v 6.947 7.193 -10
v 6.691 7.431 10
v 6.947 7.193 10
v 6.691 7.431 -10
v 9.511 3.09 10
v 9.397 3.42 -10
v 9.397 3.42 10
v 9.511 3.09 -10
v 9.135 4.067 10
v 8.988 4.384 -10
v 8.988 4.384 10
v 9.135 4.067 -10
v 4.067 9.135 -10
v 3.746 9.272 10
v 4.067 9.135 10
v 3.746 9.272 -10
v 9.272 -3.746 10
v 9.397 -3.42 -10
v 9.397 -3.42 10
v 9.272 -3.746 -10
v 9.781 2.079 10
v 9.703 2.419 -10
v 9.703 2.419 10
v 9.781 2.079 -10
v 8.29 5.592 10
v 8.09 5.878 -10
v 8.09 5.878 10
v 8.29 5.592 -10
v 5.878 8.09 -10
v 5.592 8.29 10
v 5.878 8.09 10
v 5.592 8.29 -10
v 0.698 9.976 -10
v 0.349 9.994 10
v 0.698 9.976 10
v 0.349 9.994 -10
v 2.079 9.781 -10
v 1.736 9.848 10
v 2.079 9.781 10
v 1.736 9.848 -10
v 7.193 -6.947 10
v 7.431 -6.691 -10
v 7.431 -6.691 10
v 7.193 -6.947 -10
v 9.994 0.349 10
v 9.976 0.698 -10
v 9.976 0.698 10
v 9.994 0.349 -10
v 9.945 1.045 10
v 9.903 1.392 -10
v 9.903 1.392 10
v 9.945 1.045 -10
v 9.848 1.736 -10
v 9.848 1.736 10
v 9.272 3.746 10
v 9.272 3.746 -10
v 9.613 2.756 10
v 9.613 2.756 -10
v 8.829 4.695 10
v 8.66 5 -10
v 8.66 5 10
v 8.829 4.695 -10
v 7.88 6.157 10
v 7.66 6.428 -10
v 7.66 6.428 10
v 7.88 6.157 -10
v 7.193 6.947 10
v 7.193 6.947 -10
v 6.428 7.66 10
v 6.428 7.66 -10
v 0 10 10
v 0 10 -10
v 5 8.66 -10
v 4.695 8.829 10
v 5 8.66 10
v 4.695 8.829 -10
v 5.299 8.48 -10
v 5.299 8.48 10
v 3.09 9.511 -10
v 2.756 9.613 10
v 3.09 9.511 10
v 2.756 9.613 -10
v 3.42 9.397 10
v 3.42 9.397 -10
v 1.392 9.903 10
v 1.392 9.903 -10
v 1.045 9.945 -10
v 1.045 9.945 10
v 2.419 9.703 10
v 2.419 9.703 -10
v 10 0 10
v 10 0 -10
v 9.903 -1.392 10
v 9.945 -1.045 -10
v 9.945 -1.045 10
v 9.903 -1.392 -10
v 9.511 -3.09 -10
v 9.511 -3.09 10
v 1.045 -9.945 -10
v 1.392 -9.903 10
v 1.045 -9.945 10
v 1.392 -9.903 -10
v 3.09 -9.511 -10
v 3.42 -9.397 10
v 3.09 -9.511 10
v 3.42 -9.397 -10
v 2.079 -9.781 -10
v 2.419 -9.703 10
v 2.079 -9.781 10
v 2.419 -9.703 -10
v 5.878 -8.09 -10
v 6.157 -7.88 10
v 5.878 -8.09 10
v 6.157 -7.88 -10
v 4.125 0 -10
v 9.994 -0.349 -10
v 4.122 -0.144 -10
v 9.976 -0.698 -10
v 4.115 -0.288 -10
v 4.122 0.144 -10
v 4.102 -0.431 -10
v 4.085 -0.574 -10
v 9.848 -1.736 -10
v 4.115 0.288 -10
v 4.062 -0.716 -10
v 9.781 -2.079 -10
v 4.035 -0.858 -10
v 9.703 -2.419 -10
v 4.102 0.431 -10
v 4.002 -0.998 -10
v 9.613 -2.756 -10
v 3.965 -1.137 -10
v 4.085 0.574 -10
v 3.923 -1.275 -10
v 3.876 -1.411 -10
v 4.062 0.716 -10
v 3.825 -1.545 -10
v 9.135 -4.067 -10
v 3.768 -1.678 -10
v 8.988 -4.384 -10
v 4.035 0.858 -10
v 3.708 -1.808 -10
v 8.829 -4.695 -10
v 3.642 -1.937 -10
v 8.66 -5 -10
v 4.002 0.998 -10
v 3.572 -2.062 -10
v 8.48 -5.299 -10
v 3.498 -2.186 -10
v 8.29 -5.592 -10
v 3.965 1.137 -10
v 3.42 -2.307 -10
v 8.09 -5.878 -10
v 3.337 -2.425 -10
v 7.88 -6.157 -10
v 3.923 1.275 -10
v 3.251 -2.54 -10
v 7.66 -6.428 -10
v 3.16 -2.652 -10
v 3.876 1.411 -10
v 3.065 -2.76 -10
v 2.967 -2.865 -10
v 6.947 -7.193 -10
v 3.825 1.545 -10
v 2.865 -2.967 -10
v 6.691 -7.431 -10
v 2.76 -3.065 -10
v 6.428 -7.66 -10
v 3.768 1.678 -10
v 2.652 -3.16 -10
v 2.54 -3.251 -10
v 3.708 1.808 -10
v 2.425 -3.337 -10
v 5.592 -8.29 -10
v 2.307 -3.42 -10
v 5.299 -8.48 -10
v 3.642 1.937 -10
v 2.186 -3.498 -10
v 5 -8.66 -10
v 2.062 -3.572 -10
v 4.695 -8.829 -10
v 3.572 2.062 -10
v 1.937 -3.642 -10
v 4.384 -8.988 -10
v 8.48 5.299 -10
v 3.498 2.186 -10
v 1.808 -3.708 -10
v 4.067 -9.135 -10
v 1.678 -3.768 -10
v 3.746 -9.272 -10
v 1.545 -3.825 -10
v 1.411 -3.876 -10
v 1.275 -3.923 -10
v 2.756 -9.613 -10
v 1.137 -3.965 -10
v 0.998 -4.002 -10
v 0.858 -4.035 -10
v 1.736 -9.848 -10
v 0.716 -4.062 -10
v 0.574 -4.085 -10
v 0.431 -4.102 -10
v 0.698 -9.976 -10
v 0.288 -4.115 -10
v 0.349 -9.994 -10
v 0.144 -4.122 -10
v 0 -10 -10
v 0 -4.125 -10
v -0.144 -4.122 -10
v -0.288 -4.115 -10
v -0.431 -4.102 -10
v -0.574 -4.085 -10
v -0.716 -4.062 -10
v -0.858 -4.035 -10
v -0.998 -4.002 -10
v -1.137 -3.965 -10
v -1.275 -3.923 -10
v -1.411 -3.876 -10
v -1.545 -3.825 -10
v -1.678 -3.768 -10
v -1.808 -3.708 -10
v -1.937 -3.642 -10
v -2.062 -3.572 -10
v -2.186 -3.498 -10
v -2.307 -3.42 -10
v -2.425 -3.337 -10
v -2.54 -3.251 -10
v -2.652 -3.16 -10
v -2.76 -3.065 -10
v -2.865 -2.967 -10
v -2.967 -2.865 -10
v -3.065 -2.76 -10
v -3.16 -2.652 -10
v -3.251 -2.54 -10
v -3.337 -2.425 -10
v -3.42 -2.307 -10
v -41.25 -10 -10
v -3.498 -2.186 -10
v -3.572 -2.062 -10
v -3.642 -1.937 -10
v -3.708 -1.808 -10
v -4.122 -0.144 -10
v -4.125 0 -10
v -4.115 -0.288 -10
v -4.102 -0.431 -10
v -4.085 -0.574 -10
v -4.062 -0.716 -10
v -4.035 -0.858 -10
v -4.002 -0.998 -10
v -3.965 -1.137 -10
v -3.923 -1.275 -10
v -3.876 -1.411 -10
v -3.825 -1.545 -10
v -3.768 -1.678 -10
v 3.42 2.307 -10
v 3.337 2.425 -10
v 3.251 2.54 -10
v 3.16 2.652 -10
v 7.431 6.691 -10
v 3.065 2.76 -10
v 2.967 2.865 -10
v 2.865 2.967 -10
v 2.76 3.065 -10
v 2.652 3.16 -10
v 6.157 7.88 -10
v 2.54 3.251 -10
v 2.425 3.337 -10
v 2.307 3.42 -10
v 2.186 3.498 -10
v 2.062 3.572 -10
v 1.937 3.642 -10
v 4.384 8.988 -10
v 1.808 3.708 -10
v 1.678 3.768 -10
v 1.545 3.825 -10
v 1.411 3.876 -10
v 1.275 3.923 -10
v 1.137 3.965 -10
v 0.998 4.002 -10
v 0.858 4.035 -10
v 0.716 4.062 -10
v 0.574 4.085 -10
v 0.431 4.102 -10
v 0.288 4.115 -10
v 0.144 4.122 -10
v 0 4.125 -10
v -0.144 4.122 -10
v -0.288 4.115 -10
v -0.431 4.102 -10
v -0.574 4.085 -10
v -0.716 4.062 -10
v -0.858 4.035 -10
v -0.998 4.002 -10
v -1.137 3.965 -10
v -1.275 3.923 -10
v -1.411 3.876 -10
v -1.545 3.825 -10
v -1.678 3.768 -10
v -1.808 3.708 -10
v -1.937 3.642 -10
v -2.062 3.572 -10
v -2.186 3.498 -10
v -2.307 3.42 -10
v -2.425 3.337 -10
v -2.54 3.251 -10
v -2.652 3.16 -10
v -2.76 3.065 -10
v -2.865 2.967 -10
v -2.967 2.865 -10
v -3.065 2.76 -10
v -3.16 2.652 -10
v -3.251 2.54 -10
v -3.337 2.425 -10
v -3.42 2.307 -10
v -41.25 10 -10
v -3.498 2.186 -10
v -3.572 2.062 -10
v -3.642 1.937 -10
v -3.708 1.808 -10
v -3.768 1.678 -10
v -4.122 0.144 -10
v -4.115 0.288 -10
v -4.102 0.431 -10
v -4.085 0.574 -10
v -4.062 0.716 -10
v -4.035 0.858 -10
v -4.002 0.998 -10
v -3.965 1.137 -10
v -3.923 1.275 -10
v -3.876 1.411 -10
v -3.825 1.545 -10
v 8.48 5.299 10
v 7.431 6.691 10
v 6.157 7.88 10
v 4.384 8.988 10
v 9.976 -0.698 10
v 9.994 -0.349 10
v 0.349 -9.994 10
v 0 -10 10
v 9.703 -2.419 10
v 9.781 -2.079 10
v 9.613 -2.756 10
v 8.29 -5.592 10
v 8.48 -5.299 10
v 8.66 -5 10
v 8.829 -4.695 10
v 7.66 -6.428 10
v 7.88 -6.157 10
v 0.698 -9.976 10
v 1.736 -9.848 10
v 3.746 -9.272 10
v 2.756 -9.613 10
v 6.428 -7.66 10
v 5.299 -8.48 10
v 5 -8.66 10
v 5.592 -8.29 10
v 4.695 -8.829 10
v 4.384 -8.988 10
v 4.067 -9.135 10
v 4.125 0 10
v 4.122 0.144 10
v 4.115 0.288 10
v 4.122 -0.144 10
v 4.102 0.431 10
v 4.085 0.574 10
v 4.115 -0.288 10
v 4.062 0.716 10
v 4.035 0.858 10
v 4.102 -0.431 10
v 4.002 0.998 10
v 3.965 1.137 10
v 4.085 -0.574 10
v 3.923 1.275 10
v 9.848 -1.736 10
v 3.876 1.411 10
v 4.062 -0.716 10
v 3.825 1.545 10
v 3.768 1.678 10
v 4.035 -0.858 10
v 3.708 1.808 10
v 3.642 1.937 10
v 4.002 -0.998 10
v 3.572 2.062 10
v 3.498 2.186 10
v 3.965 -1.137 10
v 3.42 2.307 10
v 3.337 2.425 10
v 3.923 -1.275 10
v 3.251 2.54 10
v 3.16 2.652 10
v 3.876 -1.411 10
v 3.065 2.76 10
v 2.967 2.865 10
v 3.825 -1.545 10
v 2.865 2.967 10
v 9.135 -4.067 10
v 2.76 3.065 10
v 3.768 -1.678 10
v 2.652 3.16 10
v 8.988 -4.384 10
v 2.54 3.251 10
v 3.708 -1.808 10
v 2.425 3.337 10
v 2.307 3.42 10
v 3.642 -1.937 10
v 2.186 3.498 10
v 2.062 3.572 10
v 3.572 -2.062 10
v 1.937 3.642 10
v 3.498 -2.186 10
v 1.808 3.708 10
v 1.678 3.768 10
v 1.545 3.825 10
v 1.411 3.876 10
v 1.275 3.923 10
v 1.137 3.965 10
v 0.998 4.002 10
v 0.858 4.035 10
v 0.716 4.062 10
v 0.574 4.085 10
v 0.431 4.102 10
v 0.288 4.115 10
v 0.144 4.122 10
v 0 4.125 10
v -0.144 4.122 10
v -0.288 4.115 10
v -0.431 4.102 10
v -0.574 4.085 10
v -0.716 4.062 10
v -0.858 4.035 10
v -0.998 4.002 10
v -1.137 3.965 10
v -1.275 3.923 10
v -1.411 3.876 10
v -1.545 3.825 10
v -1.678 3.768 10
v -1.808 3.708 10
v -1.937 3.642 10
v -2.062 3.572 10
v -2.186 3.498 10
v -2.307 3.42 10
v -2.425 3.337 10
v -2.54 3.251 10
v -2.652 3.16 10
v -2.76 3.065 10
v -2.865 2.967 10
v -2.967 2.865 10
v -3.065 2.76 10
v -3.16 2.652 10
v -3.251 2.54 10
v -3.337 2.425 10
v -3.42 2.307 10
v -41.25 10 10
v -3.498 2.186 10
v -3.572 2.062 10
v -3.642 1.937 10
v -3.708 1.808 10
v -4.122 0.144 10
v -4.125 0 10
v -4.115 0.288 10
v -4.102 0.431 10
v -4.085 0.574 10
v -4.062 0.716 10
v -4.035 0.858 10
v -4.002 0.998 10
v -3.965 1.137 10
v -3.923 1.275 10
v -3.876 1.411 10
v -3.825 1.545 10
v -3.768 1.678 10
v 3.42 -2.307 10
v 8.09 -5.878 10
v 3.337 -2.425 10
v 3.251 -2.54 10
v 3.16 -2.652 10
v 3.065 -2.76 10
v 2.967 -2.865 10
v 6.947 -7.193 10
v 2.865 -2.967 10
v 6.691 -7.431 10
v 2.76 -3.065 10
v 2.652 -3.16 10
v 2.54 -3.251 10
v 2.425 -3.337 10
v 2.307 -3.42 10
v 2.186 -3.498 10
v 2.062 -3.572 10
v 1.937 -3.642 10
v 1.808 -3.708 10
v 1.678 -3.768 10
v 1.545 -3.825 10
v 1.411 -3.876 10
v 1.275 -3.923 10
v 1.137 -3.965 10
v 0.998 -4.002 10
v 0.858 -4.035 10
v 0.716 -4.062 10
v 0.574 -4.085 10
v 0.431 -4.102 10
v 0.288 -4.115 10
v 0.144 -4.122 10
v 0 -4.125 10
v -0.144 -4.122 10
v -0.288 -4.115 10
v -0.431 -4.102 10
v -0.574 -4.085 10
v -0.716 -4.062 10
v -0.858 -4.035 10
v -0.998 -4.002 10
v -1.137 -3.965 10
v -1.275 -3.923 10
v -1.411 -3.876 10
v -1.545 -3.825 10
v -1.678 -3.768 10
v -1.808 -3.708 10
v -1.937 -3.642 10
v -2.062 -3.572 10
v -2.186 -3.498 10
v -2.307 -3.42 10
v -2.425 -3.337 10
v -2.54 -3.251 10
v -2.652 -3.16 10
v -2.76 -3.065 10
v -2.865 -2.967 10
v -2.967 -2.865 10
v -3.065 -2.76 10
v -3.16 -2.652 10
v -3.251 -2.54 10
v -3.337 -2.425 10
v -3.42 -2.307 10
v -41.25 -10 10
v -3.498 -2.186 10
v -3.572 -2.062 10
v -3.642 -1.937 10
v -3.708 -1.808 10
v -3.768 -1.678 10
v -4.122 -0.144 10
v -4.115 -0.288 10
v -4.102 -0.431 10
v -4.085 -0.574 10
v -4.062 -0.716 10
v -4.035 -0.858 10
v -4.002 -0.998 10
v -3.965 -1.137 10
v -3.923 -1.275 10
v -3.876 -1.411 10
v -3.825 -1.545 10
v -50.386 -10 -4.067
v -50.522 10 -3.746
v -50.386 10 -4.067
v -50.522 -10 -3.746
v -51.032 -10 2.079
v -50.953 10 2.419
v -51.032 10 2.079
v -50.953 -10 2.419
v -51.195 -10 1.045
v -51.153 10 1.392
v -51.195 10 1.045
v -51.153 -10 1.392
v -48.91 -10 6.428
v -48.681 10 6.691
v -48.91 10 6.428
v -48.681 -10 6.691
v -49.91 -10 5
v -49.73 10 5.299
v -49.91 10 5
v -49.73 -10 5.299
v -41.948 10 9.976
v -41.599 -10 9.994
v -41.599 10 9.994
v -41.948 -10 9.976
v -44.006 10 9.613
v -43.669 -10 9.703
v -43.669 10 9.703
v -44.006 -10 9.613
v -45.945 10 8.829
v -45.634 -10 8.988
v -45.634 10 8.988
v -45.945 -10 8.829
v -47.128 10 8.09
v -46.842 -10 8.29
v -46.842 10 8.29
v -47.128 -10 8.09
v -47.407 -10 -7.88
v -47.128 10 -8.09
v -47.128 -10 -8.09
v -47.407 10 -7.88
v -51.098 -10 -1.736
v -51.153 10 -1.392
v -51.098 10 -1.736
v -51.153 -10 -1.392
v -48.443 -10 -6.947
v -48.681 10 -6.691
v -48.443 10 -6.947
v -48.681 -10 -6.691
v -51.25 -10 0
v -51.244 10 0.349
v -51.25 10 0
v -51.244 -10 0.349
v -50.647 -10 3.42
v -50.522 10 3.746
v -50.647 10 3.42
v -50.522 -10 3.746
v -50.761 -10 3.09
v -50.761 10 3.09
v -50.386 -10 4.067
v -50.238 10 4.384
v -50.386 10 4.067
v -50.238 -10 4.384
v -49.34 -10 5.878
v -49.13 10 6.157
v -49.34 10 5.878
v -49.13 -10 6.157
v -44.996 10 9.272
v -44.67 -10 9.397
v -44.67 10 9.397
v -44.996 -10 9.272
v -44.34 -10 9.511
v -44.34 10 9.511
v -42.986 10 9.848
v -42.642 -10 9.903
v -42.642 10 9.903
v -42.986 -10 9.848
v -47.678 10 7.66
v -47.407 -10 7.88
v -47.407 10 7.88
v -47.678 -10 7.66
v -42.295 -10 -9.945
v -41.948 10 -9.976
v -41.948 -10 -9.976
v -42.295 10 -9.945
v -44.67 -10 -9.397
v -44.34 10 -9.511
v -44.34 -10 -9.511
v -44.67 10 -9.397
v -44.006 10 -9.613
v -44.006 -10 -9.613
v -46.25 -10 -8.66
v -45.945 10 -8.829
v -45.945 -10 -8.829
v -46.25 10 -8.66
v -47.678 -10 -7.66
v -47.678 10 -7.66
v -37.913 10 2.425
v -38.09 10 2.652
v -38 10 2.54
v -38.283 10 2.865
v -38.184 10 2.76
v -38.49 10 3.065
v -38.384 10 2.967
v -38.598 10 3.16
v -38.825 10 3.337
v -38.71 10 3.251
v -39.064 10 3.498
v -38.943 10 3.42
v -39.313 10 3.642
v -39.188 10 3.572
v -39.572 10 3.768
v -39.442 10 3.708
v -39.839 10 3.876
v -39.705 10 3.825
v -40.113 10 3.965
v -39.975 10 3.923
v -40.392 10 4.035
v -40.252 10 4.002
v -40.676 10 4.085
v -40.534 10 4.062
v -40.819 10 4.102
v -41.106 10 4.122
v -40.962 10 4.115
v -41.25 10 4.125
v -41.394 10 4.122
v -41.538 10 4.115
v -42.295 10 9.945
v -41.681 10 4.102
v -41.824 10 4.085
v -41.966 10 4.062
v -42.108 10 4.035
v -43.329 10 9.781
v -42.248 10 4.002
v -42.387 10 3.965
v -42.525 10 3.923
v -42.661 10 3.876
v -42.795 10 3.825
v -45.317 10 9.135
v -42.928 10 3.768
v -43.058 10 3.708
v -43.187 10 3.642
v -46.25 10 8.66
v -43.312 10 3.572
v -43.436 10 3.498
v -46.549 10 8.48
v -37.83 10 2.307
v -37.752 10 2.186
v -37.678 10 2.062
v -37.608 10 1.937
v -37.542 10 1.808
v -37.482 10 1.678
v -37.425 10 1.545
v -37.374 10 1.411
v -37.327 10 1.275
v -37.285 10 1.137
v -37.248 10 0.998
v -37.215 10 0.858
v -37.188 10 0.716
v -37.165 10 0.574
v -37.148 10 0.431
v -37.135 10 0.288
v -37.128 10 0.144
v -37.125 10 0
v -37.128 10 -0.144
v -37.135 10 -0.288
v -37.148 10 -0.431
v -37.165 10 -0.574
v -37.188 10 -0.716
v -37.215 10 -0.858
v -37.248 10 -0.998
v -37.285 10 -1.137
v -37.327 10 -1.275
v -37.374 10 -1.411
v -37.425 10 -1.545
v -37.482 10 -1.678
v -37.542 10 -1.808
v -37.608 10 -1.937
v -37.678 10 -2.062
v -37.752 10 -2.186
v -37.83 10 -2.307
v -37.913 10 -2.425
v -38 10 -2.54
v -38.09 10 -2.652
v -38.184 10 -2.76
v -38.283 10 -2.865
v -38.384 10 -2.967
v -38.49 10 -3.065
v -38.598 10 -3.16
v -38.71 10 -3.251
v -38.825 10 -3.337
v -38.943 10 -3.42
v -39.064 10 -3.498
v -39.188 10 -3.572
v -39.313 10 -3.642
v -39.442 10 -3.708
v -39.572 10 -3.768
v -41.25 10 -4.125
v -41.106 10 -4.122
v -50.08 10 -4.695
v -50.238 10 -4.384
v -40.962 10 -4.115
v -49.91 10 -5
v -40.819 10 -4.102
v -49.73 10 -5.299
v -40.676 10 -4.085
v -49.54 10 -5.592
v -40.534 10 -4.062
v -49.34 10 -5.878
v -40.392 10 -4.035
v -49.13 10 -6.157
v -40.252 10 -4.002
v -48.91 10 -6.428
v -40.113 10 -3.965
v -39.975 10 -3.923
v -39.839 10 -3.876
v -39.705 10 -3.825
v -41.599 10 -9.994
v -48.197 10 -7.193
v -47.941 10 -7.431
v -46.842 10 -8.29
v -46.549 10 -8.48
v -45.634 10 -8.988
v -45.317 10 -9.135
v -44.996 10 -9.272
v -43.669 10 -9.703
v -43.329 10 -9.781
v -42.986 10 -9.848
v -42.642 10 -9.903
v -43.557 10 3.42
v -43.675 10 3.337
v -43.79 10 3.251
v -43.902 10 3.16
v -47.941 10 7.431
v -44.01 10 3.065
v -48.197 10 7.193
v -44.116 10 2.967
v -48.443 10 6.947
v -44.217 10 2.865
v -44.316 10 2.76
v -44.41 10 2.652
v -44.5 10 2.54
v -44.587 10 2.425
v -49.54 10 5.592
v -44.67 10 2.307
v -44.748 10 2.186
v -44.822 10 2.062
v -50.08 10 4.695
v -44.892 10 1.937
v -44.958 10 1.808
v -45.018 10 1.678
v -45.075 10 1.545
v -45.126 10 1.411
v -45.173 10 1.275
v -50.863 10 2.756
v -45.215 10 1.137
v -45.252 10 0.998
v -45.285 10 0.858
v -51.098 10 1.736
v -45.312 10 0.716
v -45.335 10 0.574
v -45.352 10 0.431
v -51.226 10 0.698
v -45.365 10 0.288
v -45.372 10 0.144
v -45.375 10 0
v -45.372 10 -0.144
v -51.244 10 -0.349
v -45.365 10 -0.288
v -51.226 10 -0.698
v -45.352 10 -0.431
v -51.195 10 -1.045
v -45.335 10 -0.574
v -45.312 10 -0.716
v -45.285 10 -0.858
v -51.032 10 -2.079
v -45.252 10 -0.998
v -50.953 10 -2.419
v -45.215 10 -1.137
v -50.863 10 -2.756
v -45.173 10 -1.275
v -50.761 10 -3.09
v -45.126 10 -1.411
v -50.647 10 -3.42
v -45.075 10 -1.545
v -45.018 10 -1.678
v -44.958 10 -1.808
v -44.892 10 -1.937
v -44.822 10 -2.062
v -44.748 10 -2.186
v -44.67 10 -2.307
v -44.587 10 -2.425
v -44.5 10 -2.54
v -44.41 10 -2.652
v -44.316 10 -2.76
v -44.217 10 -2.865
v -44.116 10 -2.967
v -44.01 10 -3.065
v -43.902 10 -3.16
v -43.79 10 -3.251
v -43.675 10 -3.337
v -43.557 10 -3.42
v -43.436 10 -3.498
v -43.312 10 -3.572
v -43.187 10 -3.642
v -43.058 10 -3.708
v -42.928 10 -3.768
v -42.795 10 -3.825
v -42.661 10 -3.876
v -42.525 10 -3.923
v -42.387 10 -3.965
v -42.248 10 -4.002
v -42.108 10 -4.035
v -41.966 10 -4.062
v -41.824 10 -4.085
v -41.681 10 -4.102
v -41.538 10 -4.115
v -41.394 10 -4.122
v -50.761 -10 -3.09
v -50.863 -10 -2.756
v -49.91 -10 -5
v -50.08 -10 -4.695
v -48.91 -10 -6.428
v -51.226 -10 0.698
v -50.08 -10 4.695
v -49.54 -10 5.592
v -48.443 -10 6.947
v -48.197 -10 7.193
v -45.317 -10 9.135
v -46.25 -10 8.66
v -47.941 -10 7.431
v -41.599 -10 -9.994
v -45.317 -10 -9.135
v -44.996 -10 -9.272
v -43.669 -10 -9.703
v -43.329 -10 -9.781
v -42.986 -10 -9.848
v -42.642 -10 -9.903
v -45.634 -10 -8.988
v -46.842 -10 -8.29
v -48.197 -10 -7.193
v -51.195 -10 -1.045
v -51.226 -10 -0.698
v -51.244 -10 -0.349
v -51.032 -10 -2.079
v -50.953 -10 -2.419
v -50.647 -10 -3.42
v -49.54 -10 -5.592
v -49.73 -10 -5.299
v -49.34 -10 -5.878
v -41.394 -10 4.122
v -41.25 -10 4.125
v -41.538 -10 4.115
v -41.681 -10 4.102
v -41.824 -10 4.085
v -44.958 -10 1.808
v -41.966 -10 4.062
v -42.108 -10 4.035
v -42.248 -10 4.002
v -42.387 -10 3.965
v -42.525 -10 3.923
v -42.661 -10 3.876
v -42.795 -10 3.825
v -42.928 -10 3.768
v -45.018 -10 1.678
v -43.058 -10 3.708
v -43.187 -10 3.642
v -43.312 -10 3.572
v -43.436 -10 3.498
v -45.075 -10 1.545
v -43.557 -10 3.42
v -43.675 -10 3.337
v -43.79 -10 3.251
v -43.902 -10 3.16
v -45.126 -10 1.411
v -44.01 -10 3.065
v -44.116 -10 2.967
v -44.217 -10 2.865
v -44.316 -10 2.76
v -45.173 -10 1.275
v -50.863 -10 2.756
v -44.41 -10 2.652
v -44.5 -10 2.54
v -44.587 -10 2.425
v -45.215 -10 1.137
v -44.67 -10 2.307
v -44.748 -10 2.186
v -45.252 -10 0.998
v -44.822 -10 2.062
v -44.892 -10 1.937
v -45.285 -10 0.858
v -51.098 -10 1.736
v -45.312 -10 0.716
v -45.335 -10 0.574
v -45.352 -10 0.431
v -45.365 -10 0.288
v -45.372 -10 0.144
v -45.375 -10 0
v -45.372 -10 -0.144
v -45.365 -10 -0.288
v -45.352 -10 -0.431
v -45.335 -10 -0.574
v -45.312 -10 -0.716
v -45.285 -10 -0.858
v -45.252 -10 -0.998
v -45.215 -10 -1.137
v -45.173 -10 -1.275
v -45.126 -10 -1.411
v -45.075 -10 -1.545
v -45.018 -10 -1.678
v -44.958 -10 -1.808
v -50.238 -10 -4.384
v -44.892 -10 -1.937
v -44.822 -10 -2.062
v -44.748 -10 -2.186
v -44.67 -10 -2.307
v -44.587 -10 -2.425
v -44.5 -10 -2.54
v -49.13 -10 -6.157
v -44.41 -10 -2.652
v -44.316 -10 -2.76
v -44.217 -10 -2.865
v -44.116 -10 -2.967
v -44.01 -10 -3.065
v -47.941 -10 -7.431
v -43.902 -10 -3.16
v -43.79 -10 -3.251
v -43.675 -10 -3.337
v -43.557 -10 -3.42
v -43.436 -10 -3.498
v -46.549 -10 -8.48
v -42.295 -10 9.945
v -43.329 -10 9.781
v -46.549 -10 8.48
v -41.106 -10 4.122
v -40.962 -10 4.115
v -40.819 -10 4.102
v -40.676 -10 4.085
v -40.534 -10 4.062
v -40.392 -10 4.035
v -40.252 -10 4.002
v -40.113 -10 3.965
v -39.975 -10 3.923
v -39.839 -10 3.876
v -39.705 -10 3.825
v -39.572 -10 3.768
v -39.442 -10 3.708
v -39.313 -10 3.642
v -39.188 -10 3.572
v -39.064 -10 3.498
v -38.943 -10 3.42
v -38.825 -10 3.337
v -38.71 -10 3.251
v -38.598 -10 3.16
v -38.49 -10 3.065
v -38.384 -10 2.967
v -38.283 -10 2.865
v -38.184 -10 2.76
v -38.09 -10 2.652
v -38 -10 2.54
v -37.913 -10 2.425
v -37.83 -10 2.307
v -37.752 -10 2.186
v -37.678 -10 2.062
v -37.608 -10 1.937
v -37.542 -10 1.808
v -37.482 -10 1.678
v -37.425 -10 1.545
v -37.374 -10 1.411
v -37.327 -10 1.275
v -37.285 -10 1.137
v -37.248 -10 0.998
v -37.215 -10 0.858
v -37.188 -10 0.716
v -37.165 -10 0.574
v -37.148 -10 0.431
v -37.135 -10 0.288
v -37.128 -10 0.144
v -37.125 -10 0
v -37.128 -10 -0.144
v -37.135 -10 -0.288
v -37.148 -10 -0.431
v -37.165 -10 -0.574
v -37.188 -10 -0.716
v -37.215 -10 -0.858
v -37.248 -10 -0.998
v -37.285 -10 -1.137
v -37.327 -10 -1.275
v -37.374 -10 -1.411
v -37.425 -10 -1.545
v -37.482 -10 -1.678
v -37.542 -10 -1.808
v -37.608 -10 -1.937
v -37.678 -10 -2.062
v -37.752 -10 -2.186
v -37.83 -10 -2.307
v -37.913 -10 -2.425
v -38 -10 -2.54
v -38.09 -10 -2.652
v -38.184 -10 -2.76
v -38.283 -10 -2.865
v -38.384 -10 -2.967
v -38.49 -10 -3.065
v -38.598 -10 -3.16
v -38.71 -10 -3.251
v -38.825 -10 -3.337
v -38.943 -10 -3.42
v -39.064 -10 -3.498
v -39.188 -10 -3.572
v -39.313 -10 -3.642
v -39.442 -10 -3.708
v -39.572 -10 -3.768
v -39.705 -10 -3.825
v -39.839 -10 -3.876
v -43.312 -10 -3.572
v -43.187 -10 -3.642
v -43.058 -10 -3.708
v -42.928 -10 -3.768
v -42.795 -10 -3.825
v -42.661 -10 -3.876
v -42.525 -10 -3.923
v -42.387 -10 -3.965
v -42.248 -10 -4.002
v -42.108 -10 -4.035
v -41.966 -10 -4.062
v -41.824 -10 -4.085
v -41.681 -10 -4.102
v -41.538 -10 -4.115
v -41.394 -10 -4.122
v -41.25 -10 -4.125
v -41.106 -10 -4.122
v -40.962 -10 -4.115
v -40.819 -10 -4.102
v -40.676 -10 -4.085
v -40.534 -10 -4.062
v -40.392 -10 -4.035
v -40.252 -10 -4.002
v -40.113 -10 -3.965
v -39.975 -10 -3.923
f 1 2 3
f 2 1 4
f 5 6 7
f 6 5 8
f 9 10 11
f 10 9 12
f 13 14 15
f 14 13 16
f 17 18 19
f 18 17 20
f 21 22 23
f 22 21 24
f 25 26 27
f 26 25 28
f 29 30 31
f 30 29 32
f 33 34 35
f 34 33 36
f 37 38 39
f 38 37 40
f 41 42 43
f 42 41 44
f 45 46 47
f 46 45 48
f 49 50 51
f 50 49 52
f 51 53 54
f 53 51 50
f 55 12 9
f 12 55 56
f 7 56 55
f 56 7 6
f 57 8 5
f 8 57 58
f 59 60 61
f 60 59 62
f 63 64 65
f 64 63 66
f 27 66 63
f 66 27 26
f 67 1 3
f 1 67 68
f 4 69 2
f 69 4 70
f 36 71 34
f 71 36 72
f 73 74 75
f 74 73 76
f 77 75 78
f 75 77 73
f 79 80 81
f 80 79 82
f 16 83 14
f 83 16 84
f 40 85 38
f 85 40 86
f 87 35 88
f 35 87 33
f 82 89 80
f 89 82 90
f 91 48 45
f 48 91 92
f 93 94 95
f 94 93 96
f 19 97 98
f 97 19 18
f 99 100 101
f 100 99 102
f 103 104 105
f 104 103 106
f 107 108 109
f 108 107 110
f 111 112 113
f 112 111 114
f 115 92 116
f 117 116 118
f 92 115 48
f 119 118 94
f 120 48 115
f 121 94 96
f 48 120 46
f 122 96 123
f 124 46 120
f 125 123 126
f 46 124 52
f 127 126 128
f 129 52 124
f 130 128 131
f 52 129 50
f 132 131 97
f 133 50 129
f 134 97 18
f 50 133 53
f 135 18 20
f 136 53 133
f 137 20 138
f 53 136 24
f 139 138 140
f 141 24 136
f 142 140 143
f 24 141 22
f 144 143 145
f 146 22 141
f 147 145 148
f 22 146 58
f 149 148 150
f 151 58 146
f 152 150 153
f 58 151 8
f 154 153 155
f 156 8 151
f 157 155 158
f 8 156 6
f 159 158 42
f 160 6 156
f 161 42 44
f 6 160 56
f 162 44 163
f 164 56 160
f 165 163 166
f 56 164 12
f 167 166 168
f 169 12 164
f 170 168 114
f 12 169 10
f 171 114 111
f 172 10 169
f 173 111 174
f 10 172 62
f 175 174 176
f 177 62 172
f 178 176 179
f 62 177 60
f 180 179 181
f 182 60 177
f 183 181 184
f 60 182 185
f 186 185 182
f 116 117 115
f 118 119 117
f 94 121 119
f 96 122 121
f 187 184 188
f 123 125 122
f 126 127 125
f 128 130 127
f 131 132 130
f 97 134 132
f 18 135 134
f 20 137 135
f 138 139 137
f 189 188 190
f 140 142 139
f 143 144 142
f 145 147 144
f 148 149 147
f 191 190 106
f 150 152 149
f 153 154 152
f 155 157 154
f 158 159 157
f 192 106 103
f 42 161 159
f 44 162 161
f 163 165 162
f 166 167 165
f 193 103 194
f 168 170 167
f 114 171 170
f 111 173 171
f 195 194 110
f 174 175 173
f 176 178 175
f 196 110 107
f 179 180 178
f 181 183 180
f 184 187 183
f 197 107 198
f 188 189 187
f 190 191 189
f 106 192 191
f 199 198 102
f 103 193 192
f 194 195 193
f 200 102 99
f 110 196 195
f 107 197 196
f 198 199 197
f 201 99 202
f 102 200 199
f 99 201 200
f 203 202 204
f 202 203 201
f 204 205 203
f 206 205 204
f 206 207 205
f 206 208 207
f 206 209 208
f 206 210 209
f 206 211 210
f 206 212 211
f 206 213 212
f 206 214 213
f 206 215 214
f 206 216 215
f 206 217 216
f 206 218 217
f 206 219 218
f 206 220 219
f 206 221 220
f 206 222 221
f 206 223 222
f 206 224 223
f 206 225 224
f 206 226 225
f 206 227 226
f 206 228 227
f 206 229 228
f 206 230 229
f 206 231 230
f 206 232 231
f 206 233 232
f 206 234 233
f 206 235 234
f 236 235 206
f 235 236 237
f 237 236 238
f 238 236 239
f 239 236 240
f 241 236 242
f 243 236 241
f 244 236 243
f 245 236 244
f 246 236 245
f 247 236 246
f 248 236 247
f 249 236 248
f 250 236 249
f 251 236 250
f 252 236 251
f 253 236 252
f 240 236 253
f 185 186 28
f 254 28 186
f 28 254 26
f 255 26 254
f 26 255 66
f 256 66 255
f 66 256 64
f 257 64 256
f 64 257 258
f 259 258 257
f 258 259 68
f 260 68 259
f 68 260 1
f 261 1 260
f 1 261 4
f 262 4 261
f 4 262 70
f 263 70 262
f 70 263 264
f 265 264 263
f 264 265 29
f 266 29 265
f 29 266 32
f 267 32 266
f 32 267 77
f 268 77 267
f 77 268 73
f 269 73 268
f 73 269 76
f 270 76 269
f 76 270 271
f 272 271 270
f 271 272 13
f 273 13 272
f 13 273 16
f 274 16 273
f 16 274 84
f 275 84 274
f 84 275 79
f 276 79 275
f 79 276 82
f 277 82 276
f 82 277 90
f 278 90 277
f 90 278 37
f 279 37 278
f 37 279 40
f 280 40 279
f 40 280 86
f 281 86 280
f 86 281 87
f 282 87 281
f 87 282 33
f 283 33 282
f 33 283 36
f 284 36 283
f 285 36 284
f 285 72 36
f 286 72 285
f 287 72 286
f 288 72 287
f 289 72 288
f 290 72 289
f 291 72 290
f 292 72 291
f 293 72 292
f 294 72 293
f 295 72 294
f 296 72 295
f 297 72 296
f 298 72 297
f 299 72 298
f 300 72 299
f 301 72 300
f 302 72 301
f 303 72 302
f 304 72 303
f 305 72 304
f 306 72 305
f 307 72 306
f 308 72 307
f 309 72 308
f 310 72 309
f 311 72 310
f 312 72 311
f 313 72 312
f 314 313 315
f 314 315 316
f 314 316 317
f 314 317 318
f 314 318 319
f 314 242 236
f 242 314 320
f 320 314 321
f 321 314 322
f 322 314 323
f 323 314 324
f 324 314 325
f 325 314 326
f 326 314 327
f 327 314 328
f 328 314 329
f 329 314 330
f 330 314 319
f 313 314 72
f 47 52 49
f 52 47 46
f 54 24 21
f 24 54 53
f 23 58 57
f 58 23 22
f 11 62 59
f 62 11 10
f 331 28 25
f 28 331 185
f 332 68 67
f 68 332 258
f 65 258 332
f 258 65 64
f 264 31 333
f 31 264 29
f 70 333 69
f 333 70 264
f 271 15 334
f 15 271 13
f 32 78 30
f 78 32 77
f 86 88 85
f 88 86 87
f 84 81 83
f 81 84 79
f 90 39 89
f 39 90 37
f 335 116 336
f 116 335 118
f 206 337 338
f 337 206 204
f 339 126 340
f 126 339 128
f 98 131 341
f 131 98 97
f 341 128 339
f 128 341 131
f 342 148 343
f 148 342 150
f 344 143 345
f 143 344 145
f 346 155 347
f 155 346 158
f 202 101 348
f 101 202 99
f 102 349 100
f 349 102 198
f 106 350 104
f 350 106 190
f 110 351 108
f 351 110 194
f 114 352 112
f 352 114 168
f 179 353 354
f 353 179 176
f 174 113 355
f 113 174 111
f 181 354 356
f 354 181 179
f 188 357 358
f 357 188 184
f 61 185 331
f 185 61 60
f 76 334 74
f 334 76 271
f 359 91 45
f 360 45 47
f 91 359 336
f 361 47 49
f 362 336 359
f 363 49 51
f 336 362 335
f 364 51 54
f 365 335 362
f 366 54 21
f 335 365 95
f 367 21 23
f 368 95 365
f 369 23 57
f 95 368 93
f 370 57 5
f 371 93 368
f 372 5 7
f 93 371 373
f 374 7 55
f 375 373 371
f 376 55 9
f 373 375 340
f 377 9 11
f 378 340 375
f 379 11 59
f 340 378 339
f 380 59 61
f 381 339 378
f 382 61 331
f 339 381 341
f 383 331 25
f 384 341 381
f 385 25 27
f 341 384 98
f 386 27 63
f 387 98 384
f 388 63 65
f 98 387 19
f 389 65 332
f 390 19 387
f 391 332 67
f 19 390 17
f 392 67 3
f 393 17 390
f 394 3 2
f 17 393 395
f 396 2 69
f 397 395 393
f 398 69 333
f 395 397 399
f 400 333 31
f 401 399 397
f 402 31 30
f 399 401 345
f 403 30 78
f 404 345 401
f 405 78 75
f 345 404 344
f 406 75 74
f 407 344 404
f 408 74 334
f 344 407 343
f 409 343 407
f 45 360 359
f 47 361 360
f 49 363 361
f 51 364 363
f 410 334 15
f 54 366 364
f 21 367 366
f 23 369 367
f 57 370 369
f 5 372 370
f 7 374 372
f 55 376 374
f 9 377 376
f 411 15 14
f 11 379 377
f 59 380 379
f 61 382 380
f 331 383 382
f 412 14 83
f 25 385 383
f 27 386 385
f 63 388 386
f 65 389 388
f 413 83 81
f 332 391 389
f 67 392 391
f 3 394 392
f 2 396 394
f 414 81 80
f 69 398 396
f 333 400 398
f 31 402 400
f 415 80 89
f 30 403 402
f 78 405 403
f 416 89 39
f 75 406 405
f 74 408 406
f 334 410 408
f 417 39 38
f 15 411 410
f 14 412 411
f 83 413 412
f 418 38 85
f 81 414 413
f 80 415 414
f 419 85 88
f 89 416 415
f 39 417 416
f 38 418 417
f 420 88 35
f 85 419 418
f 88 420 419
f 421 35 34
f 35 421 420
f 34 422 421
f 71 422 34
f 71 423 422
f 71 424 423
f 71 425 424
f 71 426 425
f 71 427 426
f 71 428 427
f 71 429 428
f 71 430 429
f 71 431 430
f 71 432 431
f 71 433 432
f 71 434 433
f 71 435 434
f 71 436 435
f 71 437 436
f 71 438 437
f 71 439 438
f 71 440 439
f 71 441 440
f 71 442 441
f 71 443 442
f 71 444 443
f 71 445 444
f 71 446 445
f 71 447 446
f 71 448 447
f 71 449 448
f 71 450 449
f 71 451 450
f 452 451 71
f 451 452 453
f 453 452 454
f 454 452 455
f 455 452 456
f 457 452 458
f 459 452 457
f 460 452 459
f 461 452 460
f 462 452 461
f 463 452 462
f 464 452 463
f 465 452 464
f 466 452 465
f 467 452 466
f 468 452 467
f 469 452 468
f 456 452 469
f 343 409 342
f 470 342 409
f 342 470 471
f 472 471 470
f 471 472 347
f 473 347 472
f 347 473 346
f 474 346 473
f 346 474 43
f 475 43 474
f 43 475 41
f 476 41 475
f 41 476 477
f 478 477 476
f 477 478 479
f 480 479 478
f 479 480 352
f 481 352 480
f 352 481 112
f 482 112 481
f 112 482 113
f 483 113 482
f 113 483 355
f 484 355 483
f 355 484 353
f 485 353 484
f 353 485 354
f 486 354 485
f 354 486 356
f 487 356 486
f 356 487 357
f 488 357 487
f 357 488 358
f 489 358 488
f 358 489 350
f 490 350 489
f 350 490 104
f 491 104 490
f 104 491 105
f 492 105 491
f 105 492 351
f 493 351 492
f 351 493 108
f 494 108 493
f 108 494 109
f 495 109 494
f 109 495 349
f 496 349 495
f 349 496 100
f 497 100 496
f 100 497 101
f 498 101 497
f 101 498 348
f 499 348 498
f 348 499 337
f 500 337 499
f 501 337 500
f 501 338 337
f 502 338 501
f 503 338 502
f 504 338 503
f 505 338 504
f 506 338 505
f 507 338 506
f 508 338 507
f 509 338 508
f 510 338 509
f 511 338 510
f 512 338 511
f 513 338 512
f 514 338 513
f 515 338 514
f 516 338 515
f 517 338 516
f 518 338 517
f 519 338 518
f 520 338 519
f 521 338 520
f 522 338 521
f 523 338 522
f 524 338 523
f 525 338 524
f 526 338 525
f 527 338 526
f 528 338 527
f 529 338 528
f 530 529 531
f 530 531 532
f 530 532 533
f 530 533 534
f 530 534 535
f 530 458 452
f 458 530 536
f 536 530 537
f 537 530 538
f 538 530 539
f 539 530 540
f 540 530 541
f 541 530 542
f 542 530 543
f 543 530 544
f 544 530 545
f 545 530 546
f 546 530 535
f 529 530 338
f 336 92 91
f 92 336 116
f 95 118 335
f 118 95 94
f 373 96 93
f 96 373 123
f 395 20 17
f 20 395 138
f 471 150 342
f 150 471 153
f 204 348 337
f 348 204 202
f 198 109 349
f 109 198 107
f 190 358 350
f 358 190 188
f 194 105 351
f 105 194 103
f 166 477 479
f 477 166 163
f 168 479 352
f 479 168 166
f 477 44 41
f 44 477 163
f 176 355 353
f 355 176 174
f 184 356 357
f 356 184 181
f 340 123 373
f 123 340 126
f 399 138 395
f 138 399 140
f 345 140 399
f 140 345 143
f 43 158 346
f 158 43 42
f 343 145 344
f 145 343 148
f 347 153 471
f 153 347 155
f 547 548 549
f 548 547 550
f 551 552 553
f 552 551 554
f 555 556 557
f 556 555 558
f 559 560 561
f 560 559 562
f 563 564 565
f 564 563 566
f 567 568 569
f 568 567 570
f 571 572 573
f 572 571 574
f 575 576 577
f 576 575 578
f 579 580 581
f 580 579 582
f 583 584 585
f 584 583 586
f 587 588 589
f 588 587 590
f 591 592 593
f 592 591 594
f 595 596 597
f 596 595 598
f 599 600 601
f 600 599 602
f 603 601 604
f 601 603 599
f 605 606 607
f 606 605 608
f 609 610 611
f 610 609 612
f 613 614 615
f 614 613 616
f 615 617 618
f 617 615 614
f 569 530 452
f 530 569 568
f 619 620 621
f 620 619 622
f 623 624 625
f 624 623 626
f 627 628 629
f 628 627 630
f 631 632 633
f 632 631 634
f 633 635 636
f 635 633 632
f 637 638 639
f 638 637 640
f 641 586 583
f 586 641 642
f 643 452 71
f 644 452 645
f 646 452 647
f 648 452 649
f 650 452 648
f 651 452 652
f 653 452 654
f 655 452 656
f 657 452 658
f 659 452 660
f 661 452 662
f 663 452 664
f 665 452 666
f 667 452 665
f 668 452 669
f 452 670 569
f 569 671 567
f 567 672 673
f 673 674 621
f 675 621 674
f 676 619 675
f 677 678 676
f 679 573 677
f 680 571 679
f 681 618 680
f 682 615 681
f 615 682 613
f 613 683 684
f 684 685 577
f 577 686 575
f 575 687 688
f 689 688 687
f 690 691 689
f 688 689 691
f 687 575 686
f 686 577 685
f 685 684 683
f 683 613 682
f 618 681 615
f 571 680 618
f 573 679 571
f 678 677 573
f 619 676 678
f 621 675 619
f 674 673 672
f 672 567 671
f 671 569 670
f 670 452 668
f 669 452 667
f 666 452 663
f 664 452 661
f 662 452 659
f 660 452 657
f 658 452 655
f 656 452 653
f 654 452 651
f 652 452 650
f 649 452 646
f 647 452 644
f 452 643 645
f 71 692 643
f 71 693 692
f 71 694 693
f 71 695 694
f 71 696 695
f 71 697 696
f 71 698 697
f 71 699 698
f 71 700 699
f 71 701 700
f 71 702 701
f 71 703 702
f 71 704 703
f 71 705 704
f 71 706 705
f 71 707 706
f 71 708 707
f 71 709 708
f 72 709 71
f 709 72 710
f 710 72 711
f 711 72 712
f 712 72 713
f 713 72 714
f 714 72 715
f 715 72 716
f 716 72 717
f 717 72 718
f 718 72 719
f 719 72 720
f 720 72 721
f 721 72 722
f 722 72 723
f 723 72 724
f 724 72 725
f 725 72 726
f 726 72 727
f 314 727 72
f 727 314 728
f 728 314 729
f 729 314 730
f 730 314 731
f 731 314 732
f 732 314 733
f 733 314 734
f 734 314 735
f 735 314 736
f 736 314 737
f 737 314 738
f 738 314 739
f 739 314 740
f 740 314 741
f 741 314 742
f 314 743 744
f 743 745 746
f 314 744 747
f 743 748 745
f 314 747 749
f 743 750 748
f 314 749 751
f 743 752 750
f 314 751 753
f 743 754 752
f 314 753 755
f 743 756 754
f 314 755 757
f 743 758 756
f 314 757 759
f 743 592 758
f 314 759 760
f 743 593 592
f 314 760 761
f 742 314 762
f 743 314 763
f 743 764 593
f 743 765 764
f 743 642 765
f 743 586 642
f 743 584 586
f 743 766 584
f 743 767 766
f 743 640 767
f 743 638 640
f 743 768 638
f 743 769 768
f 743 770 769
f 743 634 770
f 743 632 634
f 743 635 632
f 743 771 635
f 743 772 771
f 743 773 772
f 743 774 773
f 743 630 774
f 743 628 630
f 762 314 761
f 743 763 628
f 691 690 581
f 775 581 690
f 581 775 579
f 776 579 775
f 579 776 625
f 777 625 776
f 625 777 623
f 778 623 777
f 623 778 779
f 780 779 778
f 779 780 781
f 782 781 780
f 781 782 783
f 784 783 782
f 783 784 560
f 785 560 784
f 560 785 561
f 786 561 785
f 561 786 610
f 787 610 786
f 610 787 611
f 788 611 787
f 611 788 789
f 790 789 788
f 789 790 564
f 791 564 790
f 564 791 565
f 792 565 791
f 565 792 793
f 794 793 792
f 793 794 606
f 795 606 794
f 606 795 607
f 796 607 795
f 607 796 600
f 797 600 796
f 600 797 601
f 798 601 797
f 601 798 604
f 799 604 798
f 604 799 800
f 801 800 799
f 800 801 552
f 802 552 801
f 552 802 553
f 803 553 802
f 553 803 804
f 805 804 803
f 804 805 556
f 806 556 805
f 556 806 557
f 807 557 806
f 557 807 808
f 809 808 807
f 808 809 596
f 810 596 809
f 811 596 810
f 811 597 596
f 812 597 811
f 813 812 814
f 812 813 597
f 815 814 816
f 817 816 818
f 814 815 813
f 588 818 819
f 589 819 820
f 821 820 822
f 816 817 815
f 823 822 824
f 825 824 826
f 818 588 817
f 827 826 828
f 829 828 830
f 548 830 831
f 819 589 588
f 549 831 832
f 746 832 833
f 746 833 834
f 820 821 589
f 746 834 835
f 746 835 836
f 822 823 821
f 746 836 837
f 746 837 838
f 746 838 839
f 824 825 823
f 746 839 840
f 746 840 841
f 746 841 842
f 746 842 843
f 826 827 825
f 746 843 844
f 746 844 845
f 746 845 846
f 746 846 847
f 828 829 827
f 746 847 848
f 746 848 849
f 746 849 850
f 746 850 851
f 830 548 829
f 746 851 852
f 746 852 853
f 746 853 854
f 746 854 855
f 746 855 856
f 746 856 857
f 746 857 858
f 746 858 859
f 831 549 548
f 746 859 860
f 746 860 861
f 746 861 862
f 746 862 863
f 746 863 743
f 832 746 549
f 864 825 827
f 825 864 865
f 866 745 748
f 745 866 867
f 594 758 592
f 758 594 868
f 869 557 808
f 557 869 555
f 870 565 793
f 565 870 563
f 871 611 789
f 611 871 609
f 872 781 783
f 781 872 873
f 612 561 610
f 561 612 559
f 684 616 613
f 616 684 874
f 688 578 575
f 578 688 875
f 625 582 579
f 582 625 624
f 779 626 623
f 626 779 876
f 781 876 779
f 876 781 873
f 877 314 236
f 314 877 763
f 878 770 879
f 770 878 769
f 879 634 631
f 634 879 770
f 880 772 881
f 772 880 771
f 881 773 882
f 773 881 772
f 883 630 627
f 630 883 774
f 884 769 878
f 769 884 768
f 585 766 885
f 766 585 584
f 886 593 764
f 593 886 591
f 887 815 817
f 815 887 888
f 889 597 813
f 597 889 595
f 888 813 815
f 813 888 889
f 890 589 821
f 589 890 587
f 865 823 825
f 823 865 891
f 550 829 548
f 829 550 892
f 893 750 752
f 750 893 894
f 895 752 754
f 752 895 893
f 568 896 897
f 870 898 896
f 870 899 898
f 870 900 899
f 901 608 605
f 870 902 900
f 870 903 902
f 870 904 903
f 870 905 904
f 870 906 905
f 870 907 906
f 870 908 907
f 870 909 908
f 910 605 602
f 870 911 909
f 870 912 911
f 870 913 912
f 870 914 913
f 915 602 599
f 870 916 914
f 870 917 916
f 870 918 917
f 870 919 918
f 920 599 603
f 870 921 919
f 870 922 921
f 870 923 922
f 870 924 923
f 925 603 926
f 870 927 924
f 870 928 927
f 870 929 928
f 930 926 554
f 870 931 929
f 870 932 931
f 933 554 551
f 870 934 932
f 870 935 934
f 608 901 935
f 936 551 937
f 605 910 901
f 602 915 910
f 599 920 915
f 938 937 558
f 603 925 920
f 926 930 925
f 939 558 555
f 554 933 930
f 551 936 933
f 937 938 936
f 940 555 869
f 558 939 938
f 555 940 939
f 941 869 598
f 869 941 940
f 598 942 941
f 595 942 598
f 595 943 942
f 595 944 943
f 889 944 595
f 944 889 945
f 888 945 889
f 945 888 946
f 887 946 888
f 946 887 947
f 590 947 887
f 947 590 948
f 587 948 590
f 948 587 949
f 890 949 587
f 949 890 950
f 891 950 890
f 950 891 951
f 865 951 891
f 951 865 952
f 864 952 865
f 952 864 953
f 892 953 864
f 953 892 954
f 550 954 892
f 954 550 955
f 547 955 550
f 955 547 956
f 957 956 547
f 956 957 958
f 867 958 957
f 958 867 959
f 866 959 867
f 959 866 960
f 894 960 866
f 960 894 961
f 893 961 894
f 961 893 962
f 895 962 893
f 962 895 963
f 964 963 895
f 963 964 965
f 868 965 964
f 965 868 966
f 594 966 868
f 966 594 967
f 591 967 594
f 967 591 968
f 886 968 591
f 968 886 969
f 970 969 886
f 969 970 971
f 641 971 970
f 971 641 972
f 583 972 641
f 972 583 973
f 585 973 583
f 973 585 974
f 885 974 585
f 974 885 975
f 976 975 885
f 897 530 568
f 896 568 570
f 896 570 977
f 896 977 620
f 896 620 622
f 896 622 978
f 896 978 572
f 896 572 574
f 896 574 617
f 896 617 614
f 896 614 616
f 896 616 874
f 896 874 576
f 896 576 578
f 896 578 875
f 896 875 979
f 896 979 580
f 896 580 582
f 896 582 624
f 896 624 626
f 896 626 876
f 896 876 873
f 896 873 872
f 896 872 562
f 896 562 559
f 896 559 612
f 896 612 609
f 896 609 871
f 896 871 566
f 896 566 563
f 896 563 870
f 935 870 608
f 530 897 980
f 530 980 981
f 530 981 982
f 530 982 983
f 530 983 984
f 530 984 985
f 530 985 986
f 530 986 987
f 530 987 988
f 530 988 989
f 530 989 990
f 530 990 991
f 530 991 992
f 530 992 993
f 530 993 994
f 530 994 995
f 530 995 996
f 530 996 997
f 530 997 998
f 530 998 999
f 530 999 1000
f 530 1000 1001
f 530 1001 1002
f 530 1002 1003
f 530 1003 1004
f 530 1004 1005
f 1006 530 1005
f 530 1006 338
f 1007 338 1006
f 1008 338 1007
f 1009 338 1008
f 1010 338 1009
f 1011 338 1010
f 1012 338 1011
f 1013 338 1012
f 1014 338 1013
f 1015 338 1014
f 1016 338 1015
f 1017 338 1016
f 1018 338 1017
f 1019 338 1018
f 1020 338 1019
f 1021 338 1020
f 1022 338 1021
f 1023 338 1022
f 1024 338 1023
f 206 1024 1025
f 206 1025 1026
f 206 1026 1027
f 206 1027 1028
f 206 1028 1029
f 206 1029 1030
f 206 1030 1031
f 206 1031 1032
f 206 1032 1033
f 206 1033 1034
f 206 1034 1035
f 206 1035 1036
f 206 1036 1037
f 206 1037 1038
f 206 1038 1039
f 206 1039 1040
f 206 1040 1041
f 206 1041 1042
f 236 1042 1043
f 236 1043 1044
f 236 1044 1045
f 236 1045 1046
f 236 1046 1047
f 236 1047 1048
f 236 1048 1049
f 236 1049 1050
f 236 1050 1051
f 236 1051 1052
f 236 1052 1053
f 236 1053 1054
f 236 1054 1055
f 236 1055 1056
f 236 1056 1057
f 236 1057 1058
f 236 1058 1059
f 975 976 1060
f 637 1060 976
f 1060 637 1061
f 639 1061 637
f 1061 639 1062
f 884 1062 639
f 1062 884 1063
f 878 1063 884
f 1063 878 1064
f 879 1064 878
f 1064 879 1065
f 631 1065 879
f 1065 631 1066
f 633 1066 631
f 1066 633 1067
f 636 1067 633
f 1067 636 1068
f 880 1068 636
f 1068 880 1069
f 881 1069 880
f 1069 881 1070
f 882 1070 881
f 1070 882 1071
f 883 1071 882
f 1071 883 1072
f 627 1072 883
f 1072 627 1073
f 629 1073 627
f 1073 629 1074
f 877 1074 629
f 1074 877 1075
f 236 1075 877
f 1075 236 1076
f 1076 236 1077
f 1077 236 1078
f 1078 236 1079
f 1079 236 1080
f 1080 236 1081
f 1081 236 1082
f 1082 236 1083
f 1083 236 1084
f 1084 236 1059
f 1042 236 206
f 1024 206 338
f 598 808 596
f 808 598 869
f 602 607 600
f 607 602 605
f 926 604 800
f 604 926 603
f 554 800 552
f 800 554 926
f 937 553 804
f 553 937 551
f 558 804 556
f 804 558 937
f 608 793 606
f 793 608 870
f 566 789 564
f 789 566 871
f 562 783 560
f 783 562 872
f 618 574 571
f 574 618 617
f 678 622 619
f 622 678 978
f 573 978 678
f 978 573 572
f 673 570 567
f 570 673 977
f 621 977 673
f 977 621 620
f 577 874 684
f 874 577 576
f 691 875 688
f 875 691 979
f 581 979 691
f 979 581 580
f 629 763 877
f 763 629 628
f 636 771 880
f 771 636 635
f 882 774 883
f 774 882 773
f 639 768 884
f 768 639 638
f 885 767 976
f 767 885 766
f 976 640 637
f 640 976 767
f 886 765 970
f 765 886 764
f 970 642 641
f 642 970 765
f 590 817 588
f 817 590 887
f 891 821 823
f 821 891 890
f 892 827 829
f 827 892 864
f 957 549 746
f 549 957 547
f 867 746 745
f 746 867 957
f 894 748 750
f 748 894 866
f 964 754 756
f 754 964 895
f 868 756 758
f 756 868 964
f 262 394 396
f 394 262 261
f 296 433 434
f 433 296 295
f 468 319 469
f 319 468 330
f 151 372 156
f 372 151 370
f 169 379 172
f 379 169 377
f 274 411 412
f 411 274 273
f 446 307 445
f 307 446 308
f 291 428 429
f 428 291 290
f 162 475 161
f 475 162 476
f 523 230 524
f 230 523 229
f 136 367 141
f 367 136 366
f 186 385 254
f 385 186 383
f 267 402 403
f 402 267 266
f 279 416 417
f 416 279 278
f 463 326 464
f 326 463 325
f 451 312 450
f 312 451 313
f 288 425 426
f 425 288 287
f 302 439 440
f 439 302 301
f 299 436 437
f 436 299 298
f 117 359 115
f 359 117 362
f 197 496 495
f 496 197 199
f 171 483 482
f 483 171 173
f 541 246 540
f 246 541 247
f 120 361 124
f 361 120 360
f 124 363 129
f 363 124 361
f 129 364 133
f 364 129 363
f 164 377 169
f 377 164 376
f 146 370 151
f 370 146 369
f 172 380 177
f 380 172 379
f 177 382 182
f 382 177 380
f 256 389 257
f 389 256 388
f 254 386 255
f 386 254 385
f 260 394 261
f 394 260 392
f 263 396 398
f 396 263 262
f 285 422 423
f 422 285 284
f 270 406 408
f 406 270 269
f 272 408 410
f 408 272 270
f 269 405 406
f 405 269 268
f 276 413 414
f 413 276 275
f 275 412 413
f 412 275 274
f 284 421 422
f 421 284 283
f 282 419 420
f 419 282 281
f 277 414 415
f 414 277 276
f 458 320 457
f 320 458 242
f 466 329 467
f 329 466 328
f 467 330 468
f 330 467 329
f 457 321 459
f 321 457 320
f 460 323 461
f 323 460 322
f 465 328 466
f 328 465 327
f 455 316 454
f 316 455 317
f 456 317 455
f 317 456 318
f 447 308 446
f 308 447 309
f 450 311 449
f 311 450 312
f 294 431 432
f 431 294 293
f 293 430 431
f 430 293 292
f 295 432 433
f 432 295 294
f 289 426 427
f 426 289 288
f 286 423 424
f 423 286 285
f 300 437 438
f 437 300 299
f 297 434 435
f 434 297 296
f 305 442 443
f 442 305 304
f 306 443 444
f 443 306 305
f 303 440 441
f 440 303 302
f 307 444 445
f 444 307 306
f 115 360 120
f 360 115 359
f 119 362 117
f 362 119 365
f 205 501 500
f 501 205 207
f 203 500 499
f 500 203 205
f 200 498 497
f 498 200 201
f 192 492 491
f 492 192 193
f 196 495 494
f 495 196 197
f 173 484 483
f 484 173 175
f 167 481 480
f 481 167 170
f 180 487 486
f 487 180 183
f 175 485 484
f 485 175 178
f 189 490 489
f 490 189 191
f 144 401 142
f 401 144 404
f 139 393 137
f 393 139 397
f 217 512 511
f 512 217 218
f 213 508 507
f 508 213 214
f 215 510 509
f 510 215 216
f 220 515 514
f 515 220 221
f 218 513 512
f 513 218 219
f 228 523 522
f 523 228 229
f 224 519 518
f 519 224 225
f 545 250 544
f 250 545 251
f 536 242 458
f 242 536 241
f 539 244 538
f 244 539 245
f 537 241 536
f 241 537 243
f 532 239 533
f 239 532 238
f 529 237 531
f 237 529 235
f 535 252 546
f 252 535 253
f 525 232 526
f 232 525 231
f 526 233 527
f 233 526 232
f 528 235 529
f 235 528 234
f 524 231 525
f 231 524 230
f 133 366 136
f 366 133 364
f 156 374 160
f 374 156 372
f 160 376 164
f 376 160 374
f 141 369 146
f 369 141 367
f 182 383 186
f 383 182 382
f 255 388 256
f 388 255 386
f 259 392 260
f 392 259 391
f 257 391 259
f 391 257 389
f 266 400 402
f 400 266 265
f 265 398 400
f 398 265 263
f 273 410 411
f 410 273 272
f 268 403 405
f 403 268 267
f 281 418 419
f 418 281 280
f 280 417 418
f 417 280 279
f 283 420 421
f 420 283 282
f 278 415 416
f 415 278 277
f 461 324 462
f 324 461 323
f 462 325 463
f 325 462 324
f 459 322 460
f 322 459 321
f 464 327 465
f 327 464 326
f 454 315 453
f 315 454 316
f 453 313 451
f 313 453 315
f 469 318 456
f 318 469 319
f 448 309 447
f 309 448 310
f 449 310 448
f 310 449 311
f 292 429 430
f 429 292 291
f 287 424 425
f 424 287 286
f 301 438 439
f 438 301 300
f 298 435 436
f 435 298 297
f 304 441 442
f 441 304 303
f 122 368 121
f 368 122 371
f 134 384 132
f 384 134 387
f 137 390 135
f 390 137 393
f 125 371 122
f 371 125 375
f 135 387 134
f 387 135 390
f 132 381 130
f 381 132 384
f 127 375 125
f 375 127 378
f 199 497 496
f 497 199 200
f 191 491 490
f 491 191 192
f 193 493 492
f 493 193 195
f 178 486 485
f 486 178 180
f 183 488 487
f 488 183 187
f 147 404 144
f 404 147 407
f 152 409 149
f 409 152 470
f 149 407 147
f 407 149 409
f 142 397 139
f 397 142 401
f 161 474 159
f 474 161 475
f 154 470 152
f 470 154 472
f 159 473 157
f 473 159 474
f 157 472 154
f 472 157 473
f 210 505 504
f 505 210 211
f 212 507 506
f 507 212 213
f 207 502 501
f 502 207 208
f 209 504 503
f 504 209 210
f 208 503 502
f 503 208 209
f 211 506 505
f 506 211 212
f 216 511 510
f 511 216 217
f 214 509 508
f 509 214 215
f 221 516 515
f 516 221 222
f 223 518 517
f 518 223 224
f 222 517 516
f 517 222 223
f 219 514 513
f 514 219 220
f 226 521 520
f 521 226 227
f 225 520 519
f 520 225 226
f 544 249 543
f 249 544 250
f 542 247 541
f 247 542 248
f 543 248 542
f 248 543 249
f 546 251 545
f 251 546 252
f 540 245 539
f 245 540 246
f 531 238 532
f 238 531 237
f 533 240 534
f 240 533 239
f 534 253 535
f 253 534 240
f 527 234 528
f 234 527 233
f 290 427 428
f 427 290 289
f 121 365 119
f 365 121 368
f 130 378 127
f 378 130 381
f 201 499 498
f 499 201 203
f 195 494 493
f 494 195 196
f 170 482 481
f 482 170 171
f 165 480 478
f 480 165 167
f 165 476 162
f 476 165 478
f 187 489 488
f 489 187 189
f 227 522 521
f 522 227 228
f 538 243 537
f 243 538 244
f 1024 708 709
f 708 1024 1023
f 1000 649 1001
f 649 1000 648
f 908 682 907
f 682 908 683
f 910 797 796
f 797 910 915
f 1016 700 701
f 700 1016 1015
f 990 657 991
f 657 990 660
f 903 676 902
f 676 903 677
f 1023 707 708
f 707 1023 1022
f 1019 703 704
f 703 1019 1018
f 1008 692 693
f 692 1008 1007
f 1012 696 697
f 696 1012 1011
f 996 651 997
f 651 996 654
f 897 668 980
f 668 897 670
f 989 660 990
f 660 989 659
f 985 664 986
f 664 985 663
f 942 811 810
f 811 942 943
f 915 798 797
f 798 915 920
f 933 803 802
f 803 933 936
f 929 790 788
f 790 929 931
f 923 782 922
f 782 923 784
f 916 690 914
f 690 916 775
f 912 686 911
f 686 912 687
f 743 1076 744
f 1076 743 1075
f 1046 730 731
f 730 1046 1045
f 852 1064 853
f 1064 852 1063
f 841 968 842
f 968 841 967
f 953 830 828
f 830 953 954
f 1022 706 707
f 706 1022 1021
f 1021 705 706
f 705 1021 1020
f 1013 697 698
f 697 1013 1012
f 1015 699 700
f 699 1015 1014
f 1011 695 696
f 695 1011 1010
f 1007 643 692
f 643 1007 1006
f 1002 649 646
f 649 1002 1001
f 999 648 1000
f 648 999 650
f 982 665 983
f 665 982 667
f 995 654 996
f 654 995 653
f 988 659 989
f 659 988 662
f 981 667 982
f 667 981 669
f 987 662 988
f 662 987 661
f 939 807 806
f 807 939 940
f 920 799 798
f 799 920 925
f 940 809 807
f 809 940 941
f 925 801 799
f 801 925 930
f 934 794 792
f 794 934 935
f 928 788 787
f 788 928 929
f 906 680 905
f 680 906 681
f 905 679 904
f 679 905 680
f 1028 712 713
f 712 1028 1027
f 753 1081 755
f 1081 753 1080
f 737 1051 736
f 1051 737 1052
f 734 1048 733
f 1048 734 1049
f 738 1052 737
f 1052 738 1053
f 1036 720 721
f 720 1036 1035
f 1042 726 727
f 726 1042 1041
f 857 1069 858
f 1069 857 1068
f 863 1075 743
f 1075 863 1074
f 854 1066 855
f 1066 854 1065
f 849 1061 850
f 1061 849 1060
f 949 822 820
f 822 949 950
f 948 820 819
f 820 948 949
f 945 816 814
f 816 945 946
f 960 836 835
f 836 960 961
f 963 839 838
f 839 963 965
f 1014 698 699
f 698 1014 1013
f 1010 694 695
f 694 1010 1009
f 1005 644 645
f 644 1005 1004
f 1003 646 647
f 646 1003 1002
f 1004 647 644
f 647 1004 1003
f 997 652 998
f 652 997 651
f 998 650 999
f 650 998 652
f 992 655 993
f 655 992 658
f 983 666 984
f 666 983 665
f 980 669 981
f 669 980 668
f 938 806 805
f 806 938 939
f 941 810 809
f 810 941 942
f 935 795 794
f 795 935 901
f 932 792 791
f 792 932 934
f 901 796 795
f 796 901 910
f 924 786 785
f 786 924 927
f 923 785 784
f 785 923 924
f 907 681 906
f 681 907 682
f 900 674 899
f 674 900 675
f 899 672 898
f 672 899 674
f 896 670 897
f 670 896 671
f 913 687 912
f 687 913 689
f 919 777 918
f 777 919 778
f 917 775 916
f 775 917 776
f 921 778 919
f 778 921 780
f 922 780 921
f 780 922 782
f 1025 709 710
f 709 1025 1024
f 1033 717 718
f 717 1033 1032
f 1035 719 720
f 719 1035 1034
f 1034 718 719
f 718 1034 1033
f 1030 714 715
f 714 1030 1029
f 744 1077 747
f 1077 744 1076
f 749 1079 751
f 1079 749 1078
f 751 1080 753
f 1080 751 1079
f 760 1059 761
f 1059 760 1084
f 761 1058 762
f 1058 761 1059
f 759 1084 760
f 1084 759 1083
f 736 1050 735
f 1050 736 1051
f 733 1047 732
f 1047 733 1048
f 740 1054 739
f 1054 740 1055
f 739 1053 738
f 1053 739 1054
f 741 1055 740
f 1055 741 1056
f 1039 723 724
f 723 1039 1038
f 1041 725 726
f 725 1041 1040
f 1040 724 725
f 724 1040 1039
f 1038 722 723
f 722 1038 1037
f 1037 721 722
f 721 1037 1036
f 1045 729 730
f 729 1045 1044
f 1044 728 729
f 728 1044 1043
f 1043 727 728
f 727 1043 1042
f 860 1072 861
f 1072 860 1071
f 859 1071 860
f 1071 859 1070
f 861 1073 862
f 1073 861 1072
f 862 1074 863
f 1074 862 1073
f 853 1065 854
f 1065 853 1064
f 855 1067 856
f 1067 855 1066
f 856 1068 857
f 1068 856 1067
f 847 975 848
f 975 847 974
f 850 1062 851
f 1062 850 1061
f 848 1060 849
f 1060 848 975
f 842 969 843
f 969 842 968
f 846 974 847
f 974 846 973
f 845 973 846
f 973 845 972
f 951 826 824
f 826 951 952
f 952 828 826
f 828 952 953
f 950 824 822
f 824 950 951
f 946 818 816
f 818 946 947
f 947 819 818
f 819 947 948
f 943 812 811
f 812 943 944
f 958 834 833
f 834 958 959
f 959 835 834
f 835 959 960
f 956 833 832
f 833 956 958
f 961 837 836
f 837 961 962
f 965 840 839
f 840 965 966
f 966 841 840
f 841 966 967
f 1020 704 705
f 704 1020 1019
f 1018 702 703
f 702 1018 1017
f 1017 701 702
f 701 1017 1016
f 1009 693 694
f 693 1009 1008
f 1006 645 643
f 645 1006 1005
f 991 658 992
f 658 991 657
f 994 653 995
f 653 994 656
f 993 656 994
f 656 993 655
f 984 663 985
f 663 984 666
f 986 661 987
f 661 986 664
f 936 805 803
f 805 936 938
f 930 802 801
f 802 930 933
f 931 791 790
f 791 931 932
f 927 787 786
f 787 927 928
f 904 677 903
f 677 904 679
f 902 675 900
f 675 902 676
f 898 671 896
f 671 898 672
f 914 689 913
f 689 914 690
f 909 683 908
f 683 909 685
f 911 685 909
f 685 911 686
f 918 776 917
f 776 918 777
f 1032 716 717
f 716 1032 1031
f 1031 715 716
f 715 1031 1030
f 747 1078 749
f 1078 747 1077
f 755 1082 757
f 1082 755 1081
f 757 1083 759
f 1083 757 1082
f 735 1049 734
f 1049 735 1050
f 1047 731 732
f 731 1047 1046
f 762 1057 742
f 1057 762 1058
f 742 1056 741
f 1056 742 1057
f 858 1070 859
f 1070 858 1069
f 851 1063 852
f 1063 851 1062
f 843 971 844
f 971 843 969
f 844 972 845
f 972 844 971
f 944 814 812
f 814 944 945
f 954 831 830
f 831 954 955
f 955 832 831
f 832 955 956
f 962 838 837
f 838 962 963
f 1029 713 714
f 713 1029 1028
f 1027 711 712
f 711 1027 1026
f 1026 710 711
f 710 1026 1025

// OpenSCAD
//cube([120,120,3], center = true);
//translate([-45,-45,0])cylinder(h = 3, r=15, $fn = 180, center = true);
//rotate_extrude(convexity = 10, $fn = A) translate([20+1.5, 0, 0])circle(d = 3, $fn = B);

difference(){
    
    
union(){    
translate([0,0,0]) cylinder(h = 20, d=20, $fn = 180, center = true);

rotate([0,0,0]) translate([-8.25-3-30,0,0]) rotate([90,0,0]) cylinder(h = 20, d=20, $fn = 180, center = true);
    
translate([-(8.25+3)/2-15,0,0]) cube([8.25+3+30,20,20], center = true);     
    
}        

translate([0,0,0]) cylinder(h = 21, d=8.25, $fn = 180, center = true);

rotate([0,0,0]) translate([-8.25-3-30,0,0]) rotate([90,0,0]) cylinder(h = 21, d=8.25, $fn = 180, center = true);
    
//rotate([0,0,-45]) translate([0,11,0]) cube([2.75,16,16], center = true);    

}







 
